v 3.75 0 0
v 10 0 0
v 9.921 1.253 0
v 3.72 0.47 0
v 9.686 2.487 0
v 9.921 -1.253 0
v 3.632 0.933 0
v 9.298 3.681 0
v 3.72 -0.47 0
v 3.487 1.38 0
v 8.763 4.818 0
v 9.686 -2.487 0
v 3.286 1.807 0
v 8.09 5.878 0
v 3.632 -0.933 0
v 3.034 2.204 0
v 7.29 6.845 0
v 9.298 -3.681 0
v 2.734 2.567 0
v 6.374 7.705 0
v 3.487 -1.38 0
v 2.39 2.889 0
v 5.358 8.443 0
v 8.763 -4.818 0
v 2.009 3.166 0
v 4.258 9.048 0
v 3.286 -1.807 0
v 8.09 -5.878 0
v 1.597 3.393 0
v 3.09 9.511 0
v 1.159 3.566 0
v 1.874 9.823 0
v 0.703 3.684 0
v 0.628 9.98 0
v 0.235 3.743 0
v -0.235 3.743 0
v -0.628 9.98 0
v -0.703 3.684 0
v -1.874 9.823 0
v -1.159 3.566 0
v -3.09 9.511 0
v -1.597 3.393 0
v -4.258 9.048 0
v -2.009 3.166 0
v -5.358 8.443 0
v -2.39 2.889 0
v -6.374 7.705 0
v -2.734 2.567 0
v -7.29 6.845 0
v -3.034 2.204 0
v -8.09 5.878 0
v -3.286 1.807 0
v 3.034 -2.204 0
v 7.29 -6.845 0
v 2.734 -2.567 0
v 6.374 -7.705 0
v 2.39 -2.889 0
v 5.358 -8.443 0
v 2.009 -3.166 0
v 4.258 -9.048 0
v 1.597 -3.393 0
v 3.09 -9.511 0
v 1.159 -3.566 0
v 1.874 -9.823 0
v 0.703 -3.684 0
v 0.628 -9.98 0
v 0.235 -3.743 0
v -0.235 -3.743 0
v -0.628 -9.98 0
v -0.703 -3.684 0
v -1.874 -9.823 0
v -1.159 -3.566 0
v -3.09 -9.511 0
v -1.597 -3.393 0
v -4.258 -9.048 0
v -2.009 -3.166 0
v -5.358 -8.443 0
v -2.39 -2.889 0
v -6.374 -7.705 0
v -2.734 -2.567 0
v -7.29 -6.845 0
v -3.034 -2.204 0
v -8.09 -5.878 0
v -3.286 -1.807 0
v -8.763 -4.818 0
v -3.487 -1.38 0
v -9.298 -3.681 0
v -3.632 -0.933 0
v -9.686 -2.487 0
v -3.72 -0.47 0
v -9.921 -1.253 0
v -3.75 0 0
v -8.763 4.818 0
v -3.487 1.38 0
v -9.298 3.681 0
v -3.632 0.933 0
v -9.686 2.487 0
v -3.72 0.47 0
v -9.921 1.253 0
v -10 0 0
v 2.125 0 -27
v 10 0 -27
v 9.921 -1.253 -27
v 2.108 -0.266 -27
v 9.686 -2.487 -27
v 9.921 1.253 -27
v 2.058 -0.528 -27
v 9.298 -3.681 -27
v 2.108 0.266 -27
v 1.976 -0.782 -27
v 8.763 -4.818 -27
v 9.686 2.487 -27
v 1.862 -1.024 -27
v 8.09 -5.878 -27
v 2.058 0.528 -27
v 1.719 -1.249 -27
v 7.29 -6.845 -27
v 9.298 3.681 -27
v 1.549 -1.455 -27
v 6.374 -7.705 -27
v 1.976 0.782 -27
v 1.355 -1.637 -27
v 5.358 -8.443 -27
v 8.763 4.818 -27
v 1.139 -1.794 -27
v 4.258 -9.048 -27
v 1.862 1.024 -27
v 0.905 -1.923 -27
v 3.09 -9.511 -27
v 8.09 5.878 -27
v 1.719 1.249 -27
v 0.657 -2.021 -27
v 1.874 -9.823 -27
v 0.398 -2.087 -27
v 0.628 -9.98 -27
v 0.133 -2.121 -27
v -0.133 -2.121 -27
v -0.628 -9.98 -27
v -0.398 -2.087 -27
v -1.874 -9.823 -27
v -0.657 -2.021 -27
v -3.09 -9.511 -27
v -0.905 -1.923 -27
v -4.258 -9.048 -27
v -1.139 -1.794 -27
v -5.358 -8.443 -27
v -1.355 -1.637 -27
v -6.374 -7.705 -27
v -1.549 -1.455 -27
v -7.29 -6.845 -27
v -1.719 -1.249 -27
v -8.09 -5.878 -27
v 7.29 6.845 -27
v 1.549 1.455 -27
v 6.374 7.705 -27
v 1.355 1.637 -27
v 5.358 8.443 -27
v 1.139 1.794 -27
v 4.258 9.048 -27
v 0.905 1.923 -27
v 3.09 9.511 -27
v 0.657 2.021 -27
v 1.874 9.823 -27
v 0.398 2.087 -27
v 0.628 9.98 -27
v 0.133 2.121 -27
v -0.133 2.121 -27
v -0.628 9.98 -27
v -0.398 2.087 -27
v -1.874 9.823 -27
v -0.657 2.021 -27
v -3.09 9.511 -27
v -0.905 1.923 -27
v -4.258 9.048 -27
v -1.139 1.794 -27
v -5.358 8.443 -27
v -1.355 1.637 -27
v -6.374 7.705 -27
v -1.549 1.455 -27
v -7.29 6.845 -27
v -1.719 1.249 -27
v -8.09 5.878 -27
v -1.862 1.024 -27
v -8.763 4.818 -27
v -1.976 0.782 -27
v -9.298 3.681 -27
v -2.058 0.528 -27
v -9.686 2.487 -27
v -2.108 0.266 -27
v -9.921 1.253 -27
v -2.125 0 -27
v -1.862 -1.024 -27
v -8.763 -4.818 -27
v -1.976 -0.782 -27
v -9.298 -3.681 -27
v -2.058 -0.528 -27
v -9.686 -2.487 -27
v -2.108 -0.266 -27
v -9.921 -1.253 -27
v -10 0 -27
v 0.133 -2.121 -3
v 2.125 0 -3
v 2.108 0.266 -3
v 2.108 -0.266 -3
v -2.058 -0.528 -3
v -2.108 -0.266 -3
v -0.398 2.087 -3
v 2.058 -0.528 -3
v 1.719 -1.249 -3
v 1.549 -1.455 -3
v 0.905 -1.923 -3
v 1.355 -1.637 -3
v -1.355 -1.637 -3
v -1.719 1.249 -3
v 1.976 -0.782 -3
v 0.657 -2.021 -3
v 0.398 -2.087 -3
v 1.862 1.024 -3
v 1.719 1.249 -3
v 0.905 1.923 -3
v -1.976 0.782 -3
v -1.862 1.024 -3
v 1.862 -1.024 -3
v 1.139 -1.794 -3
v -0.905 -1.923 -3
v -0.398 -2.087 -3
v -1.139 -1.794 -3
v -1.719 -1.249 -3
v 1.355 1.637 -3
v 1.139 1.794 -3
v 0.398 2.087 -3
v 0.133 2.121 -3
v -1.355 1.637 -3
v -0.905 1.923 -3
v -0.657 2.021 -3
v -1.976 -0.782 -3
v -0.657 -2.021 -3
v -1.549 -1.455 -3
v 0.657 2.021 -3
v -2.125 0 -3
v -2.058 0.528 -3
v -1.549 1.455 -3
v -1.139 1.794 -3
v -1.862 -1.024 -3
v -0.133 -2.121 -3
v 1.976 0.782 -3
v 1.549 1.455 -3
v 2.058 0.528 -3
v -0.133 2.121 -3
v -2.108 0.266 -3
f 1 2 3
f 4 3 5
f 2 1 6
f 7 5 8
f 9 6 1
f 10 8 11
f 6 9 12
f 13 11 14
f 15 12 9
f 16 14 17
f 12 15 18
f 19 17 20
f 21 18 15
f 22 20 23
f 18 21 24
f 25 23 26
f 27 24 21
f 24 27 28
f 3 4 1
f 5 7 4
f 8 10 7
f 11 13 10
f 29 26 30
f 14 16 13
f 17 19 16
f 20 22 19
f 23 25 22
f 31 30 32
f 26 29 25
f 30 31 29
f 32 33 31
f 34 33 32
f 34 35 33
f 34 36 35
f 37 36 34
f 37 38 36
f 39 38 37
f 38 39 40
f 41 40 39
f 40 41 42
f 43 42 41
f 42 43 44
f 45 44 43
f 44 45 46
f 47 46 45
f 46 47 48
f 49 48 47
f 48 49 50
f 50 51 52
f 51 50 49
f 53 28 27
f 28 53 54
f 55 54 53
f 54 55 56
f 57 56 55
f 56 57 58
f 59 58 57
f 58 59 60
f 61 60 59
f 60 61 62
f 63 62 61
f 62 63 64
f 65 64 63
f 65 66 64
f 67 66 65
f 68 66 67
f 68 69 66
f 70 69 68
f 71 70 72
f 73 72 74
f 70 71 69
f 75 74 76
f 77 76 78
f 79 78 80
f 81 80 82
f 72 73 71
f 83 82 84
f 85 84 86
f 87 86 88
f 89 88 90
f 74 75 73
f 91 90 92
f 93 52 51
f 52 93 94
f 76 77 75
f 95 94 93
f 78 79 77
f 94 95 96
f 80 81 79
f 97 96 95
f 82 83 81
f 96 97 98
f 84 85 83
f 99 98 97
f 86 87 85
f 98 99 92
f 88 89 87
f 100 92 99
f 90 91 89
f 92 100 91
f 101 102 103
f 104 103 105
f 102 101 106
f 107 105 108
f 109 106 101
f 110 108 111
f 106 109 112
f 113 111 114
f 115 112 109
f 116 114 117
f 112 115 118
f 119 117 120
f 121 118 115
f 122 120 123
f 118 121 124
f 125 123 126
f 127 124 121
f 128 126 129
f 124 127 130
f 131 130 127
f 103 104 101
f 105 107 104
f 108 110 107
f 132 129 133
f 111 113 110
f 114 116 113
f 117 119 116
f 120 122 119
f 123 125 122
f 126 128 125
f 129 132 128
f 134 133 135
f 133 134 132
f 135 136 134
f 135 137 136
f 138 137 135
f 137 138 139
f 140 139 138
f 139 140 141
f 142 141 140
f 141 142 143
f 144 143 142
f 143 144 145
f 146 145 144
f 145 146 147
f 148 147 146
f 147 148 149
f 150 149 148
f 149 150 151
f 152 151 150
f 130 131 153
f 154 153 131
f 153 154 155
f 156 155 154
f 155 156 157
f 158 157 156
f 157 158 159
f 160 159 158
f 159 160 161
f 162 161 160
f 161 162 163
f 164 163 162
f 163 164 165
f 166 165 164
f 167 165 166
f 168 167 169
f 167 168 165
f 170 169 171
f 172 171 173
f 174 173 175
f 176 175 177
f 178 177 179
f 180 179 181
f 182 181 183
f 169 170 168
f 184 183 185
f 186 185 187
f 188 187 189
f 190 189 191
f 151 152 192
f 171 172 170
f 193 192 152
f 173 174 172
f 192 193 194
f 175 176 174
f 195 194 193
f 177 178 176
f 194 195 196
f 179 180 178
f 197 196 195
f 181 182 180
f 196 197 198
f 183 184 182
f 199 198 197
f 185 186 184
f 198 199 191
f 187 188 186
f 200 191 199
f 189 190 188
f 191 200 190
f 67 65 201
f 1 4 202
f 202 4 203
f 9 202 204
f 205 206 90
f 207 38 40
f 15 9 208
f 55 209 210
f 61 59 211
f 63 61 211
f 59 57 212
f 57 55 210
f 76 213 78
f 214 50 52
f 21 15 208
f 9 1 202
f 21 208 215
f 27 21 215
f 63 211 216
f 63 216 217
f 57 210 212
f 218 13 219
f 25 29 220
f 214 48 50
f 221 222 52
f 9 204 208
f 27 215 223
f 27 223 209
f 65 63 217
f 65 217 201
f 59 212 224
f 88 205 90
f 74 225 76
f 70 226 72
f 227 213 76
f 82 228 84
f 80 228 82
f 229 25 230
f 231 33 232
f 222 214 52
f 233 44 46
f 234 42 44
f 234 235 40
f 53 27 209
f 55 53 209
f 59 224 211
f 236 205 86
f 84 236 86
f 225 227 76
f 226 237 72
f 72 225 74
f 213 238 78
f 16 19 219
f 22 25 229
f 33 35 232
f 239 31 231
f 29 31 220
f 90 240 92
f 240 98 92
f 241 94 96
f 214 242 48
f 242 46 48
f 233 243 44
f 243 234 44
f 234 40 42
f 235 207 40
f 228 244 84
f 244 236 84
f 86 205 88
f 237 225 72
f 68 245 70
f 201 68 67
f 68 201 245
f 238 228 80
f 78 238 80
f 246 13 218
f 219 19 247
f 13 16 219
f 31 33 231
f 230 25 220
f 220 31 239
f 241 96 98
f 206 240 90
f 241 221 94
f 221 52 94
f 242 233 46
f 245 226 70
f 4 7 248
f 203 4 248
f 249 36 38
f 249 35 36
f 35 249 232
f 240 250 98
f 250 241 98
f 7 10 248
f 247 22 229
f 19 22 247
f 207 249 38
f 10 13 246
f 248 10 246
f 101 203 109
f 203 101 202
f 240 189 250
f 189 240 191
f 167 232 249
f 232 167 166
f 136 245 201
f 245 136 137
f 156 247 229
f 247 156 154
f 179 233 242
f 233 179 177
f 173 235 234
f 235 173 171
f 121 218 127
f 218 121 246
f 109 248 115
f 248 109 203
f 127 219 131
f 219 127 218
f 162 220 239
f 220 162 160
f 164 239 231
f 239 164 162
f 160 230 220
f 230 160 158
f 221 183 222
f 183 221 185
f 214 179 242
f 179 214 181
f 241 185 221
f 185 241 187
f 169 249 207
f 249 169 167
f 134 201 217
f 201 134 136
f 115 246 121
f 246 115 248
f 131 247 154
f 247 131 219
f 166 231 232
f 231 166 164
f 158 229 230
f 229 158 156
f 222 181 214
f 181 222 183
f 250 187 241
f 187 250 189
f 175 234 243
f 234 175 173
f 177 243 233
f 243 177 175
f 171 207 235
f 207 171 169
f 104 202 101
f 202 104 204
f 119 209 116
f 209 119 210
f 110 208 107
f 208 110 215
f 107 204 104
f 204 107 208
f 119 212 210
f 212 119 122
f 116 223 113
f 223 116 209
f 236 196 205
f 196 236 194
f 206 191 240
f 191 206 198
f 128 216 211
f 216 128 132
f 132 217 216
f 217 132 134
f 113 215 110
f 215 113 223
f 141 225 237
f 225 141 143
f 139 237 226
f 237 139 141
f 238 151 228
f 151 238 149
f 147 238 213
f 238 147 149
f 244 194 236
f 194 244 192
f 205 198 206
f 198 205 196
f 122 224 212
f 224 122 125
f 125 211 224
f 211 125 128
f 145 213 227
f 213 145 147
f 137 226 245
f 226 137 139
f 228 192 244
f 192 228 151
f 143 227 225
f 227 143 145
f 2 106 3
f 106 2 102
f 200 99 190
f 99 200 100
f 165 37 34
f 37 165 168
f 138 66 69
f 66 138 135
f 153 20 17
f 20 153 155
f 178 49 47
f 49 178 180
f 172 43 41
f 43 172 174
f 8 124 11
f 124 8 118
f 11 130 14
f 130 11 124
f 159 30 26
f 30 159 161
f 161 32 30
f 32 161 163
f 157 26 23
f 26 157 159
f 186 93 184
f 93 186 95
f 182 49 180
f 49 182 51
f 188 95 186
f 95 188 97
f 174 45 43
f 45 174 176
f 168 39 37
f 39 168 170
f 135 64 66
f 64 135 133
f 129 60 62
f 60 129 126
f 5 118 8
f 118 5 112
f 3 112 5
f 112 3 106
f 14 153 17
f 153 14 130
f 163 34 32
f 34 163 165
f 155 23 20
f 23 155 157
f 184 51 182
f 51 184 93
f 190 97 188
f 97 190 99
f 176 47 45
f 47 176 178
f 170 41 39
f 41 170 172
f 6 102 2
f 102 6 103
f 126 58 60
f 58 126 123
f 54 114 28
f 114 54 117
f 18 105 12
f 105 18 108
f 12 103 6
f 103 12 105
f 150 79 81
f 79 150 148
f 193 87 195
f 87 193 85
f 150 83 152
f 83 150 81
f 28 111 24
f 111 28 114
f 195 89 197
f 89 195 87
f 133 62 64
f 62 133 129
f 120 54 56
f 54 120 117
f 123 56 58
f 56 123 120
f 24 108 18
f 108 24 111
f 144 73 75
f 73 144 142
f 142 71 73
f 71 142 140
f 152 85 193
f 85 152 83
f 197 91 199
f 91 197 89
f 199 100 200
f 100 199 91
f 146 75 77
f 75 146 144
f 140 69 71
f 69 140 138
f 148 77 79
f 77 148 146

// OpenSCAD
$fn = 50;


difference() {
	union() {
		translate(v = [0, 0, -27.0000000000]) {
			cylinder(h = 27, r = 10.0000000000);
		}
	}
	union() {
		translate(v = [0, 0, 0]) {
			rotate(a = [0, 0, 0]) {
				difference() {
					union() {
						#translate(v = [0, 0, -27.0000000000]) {
							cylinder(h = 27, r = 2.0000000000);
						}
						#translate(v = [0, 0, -3]) {
							cylinder(h = 3, r1 = 2.1250000000, r2 = 3.7500000000);
						}
						#translate(v = [0, 0, -27.0000000000]) {
							cylinder(h = 27, r = 2.1250000000);
						}
						#translate(v = [0, 0, -27.0000000000]) {
							cylinder(h = 27, r = 2.0000000000);
						}
					}
					union();
				}
			}
		}
	}
}
